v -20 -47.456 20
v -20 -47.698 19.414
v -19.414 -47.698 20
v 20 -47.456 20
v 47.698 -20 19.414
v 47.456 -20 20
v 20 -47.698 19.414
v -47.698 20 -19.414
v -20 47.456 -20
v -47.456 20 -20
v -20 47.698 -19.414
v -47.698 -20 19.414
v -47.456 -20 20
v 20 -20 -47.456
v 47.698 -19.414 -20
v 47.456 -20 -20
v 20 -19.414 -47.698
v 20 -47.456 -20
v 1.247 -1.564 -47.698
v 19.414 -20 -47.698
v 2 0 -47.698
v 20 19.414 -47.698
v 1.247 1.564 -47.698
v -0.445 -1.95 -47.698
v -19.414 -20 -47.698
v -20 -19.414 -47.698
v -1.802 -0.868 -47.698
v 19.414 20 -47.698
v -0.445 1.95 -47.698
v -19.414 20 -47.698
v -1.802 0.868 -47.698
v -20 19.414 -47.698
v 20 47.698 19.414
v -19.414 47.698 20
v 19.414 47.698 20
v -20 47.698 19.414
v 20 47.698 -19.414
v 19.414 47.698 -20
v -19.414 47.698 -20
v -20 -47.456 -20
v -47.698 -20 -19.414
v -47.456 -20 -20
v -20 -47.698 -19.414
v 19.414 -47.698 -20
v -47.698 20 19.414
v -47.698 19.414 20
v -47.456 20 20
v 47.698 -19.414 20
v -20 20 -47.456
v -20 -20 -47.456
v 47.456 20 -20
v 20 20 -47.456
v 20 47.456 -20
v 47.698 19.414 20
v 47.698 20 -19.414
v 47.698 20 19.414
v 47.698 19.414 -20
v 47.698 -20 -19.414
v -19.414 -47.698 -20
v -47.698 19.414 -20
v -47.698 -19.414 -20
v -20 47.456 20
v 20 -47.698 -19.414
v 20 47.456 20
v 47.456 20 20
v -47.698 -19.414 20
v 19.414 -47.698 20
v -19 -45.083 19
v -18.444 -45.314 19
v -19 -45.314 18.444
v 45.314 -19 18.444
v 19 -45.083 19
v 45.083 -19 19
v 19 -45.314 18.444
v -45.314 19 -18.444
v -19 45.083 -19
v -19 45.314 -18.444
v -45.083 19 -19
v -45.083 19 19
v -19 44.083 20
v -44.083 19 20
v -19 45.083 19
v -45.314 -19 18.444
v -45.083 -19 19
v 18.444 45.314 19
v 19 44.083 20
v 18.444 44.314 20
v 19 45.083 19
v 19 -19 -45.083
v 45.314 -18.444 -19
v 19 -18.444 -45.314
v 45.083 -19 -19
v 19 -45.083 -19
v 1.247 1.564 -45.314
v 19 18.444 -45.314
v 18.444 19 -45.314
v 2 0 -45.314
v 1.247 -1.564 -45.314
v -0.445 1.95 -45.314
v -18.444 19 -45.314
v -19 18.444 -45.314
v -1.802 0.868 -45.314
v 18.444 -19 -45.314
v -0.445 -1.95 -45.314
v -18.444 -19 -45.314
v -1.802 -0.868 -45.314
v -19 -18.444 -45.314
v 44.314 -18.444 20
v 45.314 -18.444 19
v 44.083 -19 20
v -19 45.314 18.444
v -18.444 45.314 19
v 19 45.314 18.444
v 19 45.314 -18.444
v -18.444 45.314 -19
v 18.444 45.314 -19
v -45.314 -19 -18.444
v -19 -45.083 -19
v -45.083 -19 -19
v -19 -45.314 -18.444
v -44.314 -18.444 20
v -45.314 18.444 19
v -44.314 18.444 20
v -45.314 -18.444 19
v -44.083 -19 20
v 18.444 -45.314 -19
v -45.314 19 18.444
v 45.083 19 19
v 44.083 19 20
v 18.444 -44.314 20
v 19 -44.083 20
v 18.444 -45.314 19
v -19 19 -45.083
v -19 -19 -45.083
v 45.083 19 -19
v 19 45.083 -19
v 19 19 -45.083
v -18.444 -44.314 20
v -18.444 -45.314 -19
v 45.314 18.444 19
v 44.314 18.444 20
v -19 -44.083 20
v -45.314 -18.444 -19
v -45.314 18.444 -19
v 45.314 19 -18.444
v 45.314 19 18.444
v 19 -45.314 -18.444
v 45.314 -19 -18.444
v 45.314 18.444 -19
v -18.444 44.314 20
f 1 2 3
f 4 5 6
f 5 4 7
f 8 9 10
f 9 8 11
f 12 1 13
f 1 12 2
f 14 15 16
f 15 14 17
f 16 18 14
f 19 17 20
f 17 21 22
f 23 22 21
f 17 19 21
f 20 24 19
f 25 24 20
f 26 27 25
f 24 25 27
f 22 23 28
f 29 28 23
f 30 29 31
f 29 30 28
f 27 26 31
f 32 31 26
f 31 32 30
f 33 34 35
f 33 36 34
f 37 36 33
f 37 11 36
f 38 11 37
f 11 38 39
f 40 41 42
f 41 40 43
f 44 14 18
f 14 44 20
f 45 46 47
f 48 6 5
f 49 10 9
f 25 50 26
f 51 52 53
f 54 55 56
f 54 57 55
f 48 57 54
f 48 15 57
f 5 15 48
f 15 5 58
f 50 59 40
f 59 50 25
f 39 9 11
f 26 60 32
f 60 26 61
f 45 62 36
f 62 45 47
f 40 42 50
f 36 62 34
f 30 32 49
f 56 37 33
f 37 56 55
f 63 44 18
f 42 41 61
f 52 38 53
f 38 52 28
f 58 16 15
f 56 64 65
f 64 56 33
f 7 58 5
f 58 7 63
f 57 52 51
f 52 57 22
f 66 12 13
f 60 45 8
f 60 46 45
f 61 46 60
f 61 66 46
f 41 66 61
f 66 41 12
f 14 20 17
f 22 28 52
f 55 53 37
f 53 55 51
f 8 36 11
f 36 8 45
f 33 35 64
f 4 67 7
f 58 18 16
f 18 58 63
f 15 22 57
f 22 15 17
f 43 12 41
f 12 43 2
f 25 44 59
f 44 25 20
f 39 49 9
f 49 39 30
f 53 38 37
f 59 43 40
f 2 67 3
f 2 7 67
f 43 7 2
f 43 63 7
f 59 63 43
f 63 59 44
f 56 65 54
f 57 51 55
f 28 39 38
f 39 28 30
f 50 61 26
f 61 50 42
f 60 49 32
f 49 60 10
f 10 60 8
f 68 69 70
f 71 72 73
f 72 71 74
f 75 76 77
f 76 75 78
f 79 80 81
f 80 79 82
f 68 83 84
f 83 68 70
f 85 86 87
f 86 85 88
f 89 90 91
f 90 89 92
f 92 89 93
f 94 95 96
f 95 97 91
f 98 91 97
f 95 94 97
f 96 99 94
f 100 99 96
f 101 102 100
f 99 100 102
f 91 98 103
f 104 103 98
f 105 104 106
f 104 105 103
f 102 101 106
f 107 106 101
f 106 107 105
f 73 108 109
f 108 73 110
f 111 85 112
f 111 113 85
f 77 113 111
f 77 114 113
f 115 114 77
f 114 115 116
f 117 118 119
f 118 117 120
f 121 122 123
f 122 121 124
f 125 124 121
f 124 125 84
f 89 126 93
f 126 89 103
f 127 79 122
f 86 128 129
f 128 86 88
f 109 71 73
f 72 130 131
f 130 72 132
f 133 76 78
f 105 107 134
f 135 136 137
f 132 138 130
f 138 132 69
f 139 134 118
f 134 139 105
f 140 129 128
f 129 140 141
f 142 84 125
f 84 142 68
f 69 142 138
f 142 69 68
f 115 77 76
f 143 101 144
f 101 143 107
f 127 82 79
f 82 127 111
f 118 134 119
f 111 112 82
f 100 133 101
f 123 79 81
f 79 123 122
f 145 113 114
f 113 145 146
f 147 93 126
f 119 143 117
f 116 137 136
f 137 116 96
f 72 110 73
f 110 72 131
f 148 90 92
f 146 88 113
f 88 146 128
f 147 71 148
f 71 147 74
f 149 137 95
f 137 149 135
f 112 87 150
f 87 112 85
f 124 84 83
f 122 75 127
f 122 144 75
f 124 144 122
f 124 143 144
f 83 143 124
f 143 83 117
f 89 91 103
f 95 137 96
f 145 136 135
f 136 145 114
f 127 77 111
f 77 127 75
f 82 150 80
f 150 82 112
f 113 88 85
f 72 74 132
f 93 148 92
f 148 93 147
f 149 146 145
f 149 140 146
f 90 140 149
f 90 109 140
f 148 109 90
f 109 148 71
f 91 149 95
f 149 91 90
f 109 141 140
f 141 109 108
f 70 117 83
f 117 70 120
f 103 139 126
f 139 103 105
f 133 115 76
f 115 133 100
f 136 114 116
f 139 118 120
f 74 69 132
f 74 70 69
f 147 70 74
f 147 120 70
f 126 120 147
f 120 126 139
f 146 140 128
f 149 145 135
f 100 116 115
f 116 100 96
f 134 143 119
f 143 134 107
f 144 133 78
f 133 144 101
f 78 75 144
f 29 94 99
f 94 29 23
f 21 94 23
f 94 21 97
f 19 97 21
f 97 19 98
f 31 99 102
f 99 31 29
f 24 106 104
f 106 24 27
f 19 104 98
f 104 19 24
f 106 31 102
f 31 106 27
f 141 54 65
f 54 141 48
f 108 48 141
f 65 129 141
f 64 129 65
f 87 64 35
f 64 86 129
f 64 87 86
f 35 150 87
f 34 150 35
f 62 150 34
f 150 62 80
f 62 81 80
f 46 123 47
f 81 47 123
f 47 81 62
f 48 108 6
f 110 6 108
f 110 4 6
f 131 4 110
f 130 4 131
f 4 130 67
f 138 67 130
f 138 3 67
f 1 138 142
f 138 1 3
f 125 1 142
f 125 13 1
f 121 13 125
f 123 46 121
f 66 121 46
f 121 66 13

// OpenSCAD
angle       = 360/8;
size        = 40;
thickness   =   4;
height      = (1 + sqrt(2)) * (size-thickness);
hole        =   4;

module j37() {
    hull() {    
        for (i = [0:7]) {
            rotate([0, 0, i*angle])
            translate([-0.5*size, -0.5*height-thickness, -0.5*size])
            cube([size, thickness, size]);
        }
    
        for (i = [0:7]) {
            rotate([i*angle, 0, 0])
            translate([-0.5*size, -0.5*size, 0.5*height])
            cube([size, size, thickness]);
        }
    
        for (i = [0:7]) {
            rotate([0, i*angle, 0])
            translate([-0.5*size, -0.5*size, 0.5*height])
            cube([size, size, thickness]);
        }
    }
}

difference() {
    j37();
    scale([0.95, 0.95, 0.95]) j37();
    translate([0, 0, -0.5*height-2*thickness]) cylinder(d = hole, h = 0.5*height);
    
    translate([-height, -height, 0.5*size]) cube([2*height, 2*height, 2*height]);
}
